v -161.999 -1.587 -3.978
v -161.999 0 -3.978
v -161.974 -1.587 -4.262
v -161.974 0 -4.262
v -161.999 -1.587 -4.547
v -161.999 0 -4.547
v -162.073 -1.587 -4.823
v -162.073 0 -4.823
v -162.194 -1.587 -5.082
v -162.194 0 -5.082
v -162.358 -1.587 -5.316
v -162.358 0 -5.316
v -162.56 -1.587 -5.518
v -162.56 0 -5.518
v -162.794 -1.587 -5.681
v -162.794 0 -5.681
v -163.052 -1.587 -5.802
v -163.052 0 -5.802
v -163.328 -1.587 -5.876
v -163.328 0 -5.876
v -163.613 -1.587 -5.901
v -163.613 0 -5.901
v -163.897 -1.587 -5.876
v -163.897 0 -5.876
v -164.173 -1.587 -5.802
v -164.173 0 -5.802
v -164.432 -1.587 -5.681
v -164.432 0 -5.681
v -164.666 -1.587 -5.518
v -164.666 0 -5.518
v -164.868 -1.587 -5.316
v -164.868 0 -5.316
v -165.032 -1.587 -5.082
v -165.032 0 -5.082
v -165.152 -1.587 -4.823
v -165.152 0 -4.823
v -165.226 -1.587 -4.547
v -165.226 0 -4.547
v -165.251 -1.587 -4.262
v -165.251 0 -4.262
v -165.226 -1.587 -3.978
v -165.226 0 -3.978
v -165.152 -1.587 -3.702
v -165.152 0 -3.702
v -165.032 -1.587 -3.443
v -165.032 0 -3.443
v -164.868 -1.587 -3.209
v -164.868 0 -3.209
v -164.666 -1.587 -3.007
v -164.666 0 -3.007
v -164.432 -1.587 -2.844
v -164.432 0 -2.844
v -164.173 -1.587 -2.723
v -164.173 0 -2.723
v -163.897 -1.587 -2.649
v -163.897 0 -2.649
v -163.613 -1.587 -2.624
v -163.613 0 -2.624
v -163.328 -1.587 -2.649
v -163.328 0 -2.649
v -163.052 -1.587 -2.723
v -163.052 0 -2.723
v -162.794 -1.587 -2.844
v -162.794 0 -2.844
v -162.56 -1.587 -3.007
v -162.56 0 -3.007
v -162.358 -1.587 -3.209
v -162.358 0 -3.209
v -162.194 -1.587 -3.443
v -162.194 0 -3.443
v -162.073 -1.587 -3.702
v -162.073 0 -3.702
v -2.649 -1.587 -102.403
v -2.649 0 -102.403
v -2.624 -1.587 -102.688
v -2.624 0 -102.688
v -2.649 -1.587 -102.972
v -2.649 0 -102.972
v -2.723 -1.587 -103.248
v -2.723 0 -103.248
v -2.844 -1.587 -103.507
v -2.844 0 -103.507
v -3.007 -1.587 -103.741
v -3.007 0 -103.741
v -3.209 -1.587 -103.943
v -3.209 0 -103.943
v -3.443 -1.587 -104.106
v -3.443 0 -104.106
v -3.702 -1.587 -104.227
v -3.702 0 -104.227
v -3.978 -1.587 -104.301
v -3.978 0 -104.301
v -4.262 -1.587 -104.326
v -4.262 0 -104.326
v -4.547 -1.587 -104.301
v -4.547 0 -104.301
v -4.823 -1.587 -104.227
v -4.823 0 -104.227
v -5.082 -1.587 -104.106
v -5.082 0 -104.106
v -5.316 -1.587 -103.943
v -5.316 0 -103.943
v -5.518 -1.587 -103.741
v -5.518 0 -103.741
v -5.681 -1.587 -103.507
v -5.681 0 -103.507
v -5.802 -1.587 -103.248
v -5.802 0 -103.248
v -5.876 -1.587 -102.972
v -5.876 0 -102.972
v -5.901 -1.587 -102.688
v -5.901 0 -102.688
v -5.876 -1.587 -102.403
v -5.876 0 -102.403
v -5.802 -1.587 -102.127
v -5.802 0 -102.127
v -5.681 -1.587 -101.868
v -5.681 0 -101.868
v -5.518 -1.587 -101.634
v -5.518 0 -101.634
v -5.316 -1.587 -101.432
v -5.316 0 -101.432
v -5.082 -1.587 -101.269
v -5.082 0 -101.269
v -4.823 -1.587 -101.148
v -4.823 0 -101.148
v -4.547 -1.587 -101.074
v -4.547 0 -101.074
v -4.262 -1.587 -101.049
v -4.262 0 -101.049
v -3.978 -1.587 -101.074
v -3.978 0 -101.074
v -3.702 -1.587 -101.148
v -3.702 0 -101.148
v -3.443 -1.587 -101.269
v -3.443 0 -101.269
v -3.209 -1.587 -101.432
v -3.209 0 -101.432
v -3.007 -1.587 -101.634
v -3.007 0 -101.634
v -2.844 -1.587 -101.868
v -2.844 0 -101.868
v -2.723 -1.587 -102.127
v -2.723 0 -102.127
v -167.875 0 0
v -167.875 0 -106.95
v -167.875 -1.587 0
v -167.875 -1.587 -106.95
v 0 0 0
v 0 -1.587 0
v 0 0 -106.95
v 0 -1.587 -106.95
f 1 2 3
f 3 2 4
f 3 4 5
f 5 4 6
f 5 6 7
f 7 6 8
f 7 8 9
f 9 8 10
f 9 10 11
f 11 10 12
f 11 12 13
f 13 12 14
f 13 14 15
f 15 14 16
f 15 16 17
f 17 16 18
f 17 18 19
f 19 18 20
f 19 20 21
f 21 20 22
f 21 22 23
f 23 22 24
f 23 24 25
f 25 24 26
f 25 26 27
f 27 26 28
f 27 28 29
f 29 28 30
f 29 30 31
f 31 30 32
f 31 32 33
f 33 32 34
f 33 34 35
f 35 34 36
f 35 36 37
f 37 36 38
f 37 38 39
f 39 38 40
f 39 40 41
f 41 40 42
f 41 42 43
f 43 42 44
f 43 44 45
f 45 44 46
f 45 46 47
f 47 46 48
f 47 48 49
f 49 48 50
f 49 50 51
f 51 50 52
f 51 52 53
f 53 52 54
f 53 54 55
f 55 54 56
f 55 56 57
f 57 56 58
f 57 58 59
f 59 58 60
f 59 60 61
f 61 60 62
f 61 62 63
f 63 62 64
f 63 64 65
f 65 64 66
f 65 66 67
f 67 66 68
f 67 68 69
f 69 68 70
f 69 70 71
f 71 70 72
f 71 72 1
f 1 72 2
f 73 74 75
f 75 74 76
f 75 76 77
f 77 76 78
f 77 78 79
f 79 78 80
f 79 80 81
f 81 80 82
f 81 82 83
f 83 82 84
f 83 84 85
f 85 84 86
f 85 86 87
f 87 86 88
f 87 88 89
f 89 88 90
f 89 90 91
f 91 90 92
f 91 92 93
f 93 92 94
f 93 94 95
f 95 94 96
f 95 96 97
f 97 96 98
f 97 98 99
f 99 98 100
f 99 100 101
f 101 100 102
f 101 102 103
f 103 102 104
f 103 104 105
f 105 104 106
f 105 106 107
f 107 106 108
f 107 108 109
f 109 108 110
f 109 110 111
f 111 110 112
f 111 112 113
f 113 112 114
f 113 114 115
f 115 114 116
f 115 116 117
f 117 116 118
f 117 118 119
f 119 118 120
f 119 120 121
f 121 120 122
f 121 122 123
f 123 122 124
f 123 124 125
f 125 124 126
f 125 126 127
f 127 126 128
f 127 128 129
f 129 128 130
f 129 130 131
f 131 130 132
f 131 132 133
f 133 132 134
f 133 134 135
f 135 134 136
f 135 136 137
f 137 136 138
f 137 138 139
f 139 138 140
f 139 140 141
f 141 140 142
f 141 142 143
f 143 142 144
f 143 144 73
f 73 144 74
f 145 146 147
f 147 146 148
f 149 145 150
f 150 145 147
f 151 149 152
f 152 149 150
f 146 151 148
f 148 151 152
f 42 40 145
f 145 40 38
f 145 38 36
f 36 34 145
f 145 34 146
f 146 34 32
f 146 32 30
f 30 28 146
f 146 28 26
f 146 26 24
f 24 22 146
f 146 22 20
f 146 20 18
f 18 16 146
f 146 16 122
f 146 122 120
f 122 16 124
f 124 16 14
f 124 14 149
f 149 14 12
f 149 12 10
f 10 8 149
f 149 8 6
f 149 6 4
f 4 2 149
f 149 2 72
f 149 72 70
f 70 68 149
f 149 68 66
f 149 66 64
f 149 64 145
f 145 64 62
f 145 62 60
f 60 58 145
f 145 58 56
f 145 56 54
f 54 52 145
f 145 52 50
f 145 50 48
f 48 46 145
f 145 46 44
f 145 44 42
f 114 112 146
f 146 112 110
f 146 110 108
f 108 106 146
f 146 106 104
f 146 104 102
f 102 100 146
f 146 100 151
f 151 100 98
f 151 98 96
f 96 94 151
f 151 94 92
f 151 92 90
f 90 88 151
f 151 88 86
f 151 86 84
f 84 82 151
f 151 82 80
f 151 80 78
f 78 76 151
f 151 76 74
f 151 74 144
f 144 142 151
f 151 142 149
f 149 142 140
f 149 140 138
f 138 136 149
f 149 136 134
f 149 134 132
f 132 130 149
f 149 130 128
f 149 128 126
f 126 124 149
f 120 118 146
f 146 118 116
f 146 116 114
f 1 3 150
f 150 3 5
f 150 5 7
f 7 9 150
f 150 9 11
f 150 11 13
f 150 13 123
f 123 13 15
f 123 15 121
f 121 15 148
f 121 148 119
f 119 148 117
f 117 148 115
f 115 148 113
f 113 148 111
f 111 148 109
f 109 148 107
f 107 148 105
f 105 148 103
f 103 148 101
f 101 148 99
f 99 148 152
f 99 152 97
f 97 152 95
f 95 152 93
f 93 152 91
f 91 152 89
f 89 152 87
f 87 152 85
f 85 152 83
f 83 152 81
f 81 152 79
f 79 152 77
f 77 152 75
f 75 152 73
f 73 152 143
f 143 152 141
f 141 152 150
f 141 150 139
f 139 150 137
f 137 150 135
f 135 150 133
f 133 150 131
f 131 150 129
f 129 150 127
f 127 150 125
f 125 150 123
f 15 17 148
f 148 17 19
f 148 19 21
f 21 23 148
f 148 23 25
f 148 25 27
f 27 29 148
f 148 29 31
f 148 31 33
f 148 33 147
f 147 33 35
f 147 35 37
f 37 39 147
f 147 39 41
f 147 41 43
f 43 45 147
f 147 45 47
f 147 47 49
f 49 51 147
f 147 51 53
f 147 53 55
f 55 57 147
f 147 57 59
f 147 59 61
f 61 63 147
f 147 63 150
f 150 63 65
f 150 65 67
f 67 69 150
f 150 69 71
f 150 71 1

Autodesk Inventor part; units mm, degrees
ref_plane "YZ Plane" through (0, 0, 0) normal (1, 0, 0) x (0, 1, 0)
ref_plane "XZ Plane" through (0, 0, 0) normal (0, 1, 0) x (-1, 0, 0)
ref_plane "XY Plane" through (0, 0, 0) normal (0, 0, 1) x (1, 0, 0)
sketch "Sketch1" plane through (0, 0, 0) normal (0, 1, 0) x (-1, 0, 0)
  line L0 (0, 0) -> (167.8752, 0)
  line L1 (167.8752, 0) -> (167.8752, -106.95)
  line L2 (167.8752, -106.95) -> (0, -106.95)
  line L3 (0, -106.95) -> (0, 0)
  line L4 (0, -106.95) -> (4.2625, -106.95)
  line L5 (4.2625, -106.95) -> (4.2625, -102.6875)
  line L6 (4.2625, -102.6875) -> (0, -102.6875)
  line L7 (0, -102.6875) -> (0, -106.95)
  line L8 (167.8752, 0) -> (163.6127, 0)
  line L9 (163.6127, 0) -> (163.6127, -4.2625)
  line L10 (163.6127, -4.2625) -> (167.8752, -4.2625)
  line L11 (167.8752, -4.2625) -> (167.8752, 0)
  dimension "d0" = 167.8752
  dimension "d1" = 106.95
  dimension "d2" = 4.2625
  dimension "d3" = 4.2625
  dimension "d4" = 4.2625
  dimension "d5" = 4.2625
extrude "Extrusion1" add sketch "Sketch1" against normal blind 1.5875
hole "Hole1" at (-163.6127, 0, -4.2625) at (-4.2625, 0, -102.6875) direction (0, -1, 0) diameter 3.2766 end through all clearance for "Flat Head Machine Screw (82)" size "#4" standard "Ansi Unified Screw Threads"
properties part number "Compute Module Cover for RoadBot Rail-r3"
